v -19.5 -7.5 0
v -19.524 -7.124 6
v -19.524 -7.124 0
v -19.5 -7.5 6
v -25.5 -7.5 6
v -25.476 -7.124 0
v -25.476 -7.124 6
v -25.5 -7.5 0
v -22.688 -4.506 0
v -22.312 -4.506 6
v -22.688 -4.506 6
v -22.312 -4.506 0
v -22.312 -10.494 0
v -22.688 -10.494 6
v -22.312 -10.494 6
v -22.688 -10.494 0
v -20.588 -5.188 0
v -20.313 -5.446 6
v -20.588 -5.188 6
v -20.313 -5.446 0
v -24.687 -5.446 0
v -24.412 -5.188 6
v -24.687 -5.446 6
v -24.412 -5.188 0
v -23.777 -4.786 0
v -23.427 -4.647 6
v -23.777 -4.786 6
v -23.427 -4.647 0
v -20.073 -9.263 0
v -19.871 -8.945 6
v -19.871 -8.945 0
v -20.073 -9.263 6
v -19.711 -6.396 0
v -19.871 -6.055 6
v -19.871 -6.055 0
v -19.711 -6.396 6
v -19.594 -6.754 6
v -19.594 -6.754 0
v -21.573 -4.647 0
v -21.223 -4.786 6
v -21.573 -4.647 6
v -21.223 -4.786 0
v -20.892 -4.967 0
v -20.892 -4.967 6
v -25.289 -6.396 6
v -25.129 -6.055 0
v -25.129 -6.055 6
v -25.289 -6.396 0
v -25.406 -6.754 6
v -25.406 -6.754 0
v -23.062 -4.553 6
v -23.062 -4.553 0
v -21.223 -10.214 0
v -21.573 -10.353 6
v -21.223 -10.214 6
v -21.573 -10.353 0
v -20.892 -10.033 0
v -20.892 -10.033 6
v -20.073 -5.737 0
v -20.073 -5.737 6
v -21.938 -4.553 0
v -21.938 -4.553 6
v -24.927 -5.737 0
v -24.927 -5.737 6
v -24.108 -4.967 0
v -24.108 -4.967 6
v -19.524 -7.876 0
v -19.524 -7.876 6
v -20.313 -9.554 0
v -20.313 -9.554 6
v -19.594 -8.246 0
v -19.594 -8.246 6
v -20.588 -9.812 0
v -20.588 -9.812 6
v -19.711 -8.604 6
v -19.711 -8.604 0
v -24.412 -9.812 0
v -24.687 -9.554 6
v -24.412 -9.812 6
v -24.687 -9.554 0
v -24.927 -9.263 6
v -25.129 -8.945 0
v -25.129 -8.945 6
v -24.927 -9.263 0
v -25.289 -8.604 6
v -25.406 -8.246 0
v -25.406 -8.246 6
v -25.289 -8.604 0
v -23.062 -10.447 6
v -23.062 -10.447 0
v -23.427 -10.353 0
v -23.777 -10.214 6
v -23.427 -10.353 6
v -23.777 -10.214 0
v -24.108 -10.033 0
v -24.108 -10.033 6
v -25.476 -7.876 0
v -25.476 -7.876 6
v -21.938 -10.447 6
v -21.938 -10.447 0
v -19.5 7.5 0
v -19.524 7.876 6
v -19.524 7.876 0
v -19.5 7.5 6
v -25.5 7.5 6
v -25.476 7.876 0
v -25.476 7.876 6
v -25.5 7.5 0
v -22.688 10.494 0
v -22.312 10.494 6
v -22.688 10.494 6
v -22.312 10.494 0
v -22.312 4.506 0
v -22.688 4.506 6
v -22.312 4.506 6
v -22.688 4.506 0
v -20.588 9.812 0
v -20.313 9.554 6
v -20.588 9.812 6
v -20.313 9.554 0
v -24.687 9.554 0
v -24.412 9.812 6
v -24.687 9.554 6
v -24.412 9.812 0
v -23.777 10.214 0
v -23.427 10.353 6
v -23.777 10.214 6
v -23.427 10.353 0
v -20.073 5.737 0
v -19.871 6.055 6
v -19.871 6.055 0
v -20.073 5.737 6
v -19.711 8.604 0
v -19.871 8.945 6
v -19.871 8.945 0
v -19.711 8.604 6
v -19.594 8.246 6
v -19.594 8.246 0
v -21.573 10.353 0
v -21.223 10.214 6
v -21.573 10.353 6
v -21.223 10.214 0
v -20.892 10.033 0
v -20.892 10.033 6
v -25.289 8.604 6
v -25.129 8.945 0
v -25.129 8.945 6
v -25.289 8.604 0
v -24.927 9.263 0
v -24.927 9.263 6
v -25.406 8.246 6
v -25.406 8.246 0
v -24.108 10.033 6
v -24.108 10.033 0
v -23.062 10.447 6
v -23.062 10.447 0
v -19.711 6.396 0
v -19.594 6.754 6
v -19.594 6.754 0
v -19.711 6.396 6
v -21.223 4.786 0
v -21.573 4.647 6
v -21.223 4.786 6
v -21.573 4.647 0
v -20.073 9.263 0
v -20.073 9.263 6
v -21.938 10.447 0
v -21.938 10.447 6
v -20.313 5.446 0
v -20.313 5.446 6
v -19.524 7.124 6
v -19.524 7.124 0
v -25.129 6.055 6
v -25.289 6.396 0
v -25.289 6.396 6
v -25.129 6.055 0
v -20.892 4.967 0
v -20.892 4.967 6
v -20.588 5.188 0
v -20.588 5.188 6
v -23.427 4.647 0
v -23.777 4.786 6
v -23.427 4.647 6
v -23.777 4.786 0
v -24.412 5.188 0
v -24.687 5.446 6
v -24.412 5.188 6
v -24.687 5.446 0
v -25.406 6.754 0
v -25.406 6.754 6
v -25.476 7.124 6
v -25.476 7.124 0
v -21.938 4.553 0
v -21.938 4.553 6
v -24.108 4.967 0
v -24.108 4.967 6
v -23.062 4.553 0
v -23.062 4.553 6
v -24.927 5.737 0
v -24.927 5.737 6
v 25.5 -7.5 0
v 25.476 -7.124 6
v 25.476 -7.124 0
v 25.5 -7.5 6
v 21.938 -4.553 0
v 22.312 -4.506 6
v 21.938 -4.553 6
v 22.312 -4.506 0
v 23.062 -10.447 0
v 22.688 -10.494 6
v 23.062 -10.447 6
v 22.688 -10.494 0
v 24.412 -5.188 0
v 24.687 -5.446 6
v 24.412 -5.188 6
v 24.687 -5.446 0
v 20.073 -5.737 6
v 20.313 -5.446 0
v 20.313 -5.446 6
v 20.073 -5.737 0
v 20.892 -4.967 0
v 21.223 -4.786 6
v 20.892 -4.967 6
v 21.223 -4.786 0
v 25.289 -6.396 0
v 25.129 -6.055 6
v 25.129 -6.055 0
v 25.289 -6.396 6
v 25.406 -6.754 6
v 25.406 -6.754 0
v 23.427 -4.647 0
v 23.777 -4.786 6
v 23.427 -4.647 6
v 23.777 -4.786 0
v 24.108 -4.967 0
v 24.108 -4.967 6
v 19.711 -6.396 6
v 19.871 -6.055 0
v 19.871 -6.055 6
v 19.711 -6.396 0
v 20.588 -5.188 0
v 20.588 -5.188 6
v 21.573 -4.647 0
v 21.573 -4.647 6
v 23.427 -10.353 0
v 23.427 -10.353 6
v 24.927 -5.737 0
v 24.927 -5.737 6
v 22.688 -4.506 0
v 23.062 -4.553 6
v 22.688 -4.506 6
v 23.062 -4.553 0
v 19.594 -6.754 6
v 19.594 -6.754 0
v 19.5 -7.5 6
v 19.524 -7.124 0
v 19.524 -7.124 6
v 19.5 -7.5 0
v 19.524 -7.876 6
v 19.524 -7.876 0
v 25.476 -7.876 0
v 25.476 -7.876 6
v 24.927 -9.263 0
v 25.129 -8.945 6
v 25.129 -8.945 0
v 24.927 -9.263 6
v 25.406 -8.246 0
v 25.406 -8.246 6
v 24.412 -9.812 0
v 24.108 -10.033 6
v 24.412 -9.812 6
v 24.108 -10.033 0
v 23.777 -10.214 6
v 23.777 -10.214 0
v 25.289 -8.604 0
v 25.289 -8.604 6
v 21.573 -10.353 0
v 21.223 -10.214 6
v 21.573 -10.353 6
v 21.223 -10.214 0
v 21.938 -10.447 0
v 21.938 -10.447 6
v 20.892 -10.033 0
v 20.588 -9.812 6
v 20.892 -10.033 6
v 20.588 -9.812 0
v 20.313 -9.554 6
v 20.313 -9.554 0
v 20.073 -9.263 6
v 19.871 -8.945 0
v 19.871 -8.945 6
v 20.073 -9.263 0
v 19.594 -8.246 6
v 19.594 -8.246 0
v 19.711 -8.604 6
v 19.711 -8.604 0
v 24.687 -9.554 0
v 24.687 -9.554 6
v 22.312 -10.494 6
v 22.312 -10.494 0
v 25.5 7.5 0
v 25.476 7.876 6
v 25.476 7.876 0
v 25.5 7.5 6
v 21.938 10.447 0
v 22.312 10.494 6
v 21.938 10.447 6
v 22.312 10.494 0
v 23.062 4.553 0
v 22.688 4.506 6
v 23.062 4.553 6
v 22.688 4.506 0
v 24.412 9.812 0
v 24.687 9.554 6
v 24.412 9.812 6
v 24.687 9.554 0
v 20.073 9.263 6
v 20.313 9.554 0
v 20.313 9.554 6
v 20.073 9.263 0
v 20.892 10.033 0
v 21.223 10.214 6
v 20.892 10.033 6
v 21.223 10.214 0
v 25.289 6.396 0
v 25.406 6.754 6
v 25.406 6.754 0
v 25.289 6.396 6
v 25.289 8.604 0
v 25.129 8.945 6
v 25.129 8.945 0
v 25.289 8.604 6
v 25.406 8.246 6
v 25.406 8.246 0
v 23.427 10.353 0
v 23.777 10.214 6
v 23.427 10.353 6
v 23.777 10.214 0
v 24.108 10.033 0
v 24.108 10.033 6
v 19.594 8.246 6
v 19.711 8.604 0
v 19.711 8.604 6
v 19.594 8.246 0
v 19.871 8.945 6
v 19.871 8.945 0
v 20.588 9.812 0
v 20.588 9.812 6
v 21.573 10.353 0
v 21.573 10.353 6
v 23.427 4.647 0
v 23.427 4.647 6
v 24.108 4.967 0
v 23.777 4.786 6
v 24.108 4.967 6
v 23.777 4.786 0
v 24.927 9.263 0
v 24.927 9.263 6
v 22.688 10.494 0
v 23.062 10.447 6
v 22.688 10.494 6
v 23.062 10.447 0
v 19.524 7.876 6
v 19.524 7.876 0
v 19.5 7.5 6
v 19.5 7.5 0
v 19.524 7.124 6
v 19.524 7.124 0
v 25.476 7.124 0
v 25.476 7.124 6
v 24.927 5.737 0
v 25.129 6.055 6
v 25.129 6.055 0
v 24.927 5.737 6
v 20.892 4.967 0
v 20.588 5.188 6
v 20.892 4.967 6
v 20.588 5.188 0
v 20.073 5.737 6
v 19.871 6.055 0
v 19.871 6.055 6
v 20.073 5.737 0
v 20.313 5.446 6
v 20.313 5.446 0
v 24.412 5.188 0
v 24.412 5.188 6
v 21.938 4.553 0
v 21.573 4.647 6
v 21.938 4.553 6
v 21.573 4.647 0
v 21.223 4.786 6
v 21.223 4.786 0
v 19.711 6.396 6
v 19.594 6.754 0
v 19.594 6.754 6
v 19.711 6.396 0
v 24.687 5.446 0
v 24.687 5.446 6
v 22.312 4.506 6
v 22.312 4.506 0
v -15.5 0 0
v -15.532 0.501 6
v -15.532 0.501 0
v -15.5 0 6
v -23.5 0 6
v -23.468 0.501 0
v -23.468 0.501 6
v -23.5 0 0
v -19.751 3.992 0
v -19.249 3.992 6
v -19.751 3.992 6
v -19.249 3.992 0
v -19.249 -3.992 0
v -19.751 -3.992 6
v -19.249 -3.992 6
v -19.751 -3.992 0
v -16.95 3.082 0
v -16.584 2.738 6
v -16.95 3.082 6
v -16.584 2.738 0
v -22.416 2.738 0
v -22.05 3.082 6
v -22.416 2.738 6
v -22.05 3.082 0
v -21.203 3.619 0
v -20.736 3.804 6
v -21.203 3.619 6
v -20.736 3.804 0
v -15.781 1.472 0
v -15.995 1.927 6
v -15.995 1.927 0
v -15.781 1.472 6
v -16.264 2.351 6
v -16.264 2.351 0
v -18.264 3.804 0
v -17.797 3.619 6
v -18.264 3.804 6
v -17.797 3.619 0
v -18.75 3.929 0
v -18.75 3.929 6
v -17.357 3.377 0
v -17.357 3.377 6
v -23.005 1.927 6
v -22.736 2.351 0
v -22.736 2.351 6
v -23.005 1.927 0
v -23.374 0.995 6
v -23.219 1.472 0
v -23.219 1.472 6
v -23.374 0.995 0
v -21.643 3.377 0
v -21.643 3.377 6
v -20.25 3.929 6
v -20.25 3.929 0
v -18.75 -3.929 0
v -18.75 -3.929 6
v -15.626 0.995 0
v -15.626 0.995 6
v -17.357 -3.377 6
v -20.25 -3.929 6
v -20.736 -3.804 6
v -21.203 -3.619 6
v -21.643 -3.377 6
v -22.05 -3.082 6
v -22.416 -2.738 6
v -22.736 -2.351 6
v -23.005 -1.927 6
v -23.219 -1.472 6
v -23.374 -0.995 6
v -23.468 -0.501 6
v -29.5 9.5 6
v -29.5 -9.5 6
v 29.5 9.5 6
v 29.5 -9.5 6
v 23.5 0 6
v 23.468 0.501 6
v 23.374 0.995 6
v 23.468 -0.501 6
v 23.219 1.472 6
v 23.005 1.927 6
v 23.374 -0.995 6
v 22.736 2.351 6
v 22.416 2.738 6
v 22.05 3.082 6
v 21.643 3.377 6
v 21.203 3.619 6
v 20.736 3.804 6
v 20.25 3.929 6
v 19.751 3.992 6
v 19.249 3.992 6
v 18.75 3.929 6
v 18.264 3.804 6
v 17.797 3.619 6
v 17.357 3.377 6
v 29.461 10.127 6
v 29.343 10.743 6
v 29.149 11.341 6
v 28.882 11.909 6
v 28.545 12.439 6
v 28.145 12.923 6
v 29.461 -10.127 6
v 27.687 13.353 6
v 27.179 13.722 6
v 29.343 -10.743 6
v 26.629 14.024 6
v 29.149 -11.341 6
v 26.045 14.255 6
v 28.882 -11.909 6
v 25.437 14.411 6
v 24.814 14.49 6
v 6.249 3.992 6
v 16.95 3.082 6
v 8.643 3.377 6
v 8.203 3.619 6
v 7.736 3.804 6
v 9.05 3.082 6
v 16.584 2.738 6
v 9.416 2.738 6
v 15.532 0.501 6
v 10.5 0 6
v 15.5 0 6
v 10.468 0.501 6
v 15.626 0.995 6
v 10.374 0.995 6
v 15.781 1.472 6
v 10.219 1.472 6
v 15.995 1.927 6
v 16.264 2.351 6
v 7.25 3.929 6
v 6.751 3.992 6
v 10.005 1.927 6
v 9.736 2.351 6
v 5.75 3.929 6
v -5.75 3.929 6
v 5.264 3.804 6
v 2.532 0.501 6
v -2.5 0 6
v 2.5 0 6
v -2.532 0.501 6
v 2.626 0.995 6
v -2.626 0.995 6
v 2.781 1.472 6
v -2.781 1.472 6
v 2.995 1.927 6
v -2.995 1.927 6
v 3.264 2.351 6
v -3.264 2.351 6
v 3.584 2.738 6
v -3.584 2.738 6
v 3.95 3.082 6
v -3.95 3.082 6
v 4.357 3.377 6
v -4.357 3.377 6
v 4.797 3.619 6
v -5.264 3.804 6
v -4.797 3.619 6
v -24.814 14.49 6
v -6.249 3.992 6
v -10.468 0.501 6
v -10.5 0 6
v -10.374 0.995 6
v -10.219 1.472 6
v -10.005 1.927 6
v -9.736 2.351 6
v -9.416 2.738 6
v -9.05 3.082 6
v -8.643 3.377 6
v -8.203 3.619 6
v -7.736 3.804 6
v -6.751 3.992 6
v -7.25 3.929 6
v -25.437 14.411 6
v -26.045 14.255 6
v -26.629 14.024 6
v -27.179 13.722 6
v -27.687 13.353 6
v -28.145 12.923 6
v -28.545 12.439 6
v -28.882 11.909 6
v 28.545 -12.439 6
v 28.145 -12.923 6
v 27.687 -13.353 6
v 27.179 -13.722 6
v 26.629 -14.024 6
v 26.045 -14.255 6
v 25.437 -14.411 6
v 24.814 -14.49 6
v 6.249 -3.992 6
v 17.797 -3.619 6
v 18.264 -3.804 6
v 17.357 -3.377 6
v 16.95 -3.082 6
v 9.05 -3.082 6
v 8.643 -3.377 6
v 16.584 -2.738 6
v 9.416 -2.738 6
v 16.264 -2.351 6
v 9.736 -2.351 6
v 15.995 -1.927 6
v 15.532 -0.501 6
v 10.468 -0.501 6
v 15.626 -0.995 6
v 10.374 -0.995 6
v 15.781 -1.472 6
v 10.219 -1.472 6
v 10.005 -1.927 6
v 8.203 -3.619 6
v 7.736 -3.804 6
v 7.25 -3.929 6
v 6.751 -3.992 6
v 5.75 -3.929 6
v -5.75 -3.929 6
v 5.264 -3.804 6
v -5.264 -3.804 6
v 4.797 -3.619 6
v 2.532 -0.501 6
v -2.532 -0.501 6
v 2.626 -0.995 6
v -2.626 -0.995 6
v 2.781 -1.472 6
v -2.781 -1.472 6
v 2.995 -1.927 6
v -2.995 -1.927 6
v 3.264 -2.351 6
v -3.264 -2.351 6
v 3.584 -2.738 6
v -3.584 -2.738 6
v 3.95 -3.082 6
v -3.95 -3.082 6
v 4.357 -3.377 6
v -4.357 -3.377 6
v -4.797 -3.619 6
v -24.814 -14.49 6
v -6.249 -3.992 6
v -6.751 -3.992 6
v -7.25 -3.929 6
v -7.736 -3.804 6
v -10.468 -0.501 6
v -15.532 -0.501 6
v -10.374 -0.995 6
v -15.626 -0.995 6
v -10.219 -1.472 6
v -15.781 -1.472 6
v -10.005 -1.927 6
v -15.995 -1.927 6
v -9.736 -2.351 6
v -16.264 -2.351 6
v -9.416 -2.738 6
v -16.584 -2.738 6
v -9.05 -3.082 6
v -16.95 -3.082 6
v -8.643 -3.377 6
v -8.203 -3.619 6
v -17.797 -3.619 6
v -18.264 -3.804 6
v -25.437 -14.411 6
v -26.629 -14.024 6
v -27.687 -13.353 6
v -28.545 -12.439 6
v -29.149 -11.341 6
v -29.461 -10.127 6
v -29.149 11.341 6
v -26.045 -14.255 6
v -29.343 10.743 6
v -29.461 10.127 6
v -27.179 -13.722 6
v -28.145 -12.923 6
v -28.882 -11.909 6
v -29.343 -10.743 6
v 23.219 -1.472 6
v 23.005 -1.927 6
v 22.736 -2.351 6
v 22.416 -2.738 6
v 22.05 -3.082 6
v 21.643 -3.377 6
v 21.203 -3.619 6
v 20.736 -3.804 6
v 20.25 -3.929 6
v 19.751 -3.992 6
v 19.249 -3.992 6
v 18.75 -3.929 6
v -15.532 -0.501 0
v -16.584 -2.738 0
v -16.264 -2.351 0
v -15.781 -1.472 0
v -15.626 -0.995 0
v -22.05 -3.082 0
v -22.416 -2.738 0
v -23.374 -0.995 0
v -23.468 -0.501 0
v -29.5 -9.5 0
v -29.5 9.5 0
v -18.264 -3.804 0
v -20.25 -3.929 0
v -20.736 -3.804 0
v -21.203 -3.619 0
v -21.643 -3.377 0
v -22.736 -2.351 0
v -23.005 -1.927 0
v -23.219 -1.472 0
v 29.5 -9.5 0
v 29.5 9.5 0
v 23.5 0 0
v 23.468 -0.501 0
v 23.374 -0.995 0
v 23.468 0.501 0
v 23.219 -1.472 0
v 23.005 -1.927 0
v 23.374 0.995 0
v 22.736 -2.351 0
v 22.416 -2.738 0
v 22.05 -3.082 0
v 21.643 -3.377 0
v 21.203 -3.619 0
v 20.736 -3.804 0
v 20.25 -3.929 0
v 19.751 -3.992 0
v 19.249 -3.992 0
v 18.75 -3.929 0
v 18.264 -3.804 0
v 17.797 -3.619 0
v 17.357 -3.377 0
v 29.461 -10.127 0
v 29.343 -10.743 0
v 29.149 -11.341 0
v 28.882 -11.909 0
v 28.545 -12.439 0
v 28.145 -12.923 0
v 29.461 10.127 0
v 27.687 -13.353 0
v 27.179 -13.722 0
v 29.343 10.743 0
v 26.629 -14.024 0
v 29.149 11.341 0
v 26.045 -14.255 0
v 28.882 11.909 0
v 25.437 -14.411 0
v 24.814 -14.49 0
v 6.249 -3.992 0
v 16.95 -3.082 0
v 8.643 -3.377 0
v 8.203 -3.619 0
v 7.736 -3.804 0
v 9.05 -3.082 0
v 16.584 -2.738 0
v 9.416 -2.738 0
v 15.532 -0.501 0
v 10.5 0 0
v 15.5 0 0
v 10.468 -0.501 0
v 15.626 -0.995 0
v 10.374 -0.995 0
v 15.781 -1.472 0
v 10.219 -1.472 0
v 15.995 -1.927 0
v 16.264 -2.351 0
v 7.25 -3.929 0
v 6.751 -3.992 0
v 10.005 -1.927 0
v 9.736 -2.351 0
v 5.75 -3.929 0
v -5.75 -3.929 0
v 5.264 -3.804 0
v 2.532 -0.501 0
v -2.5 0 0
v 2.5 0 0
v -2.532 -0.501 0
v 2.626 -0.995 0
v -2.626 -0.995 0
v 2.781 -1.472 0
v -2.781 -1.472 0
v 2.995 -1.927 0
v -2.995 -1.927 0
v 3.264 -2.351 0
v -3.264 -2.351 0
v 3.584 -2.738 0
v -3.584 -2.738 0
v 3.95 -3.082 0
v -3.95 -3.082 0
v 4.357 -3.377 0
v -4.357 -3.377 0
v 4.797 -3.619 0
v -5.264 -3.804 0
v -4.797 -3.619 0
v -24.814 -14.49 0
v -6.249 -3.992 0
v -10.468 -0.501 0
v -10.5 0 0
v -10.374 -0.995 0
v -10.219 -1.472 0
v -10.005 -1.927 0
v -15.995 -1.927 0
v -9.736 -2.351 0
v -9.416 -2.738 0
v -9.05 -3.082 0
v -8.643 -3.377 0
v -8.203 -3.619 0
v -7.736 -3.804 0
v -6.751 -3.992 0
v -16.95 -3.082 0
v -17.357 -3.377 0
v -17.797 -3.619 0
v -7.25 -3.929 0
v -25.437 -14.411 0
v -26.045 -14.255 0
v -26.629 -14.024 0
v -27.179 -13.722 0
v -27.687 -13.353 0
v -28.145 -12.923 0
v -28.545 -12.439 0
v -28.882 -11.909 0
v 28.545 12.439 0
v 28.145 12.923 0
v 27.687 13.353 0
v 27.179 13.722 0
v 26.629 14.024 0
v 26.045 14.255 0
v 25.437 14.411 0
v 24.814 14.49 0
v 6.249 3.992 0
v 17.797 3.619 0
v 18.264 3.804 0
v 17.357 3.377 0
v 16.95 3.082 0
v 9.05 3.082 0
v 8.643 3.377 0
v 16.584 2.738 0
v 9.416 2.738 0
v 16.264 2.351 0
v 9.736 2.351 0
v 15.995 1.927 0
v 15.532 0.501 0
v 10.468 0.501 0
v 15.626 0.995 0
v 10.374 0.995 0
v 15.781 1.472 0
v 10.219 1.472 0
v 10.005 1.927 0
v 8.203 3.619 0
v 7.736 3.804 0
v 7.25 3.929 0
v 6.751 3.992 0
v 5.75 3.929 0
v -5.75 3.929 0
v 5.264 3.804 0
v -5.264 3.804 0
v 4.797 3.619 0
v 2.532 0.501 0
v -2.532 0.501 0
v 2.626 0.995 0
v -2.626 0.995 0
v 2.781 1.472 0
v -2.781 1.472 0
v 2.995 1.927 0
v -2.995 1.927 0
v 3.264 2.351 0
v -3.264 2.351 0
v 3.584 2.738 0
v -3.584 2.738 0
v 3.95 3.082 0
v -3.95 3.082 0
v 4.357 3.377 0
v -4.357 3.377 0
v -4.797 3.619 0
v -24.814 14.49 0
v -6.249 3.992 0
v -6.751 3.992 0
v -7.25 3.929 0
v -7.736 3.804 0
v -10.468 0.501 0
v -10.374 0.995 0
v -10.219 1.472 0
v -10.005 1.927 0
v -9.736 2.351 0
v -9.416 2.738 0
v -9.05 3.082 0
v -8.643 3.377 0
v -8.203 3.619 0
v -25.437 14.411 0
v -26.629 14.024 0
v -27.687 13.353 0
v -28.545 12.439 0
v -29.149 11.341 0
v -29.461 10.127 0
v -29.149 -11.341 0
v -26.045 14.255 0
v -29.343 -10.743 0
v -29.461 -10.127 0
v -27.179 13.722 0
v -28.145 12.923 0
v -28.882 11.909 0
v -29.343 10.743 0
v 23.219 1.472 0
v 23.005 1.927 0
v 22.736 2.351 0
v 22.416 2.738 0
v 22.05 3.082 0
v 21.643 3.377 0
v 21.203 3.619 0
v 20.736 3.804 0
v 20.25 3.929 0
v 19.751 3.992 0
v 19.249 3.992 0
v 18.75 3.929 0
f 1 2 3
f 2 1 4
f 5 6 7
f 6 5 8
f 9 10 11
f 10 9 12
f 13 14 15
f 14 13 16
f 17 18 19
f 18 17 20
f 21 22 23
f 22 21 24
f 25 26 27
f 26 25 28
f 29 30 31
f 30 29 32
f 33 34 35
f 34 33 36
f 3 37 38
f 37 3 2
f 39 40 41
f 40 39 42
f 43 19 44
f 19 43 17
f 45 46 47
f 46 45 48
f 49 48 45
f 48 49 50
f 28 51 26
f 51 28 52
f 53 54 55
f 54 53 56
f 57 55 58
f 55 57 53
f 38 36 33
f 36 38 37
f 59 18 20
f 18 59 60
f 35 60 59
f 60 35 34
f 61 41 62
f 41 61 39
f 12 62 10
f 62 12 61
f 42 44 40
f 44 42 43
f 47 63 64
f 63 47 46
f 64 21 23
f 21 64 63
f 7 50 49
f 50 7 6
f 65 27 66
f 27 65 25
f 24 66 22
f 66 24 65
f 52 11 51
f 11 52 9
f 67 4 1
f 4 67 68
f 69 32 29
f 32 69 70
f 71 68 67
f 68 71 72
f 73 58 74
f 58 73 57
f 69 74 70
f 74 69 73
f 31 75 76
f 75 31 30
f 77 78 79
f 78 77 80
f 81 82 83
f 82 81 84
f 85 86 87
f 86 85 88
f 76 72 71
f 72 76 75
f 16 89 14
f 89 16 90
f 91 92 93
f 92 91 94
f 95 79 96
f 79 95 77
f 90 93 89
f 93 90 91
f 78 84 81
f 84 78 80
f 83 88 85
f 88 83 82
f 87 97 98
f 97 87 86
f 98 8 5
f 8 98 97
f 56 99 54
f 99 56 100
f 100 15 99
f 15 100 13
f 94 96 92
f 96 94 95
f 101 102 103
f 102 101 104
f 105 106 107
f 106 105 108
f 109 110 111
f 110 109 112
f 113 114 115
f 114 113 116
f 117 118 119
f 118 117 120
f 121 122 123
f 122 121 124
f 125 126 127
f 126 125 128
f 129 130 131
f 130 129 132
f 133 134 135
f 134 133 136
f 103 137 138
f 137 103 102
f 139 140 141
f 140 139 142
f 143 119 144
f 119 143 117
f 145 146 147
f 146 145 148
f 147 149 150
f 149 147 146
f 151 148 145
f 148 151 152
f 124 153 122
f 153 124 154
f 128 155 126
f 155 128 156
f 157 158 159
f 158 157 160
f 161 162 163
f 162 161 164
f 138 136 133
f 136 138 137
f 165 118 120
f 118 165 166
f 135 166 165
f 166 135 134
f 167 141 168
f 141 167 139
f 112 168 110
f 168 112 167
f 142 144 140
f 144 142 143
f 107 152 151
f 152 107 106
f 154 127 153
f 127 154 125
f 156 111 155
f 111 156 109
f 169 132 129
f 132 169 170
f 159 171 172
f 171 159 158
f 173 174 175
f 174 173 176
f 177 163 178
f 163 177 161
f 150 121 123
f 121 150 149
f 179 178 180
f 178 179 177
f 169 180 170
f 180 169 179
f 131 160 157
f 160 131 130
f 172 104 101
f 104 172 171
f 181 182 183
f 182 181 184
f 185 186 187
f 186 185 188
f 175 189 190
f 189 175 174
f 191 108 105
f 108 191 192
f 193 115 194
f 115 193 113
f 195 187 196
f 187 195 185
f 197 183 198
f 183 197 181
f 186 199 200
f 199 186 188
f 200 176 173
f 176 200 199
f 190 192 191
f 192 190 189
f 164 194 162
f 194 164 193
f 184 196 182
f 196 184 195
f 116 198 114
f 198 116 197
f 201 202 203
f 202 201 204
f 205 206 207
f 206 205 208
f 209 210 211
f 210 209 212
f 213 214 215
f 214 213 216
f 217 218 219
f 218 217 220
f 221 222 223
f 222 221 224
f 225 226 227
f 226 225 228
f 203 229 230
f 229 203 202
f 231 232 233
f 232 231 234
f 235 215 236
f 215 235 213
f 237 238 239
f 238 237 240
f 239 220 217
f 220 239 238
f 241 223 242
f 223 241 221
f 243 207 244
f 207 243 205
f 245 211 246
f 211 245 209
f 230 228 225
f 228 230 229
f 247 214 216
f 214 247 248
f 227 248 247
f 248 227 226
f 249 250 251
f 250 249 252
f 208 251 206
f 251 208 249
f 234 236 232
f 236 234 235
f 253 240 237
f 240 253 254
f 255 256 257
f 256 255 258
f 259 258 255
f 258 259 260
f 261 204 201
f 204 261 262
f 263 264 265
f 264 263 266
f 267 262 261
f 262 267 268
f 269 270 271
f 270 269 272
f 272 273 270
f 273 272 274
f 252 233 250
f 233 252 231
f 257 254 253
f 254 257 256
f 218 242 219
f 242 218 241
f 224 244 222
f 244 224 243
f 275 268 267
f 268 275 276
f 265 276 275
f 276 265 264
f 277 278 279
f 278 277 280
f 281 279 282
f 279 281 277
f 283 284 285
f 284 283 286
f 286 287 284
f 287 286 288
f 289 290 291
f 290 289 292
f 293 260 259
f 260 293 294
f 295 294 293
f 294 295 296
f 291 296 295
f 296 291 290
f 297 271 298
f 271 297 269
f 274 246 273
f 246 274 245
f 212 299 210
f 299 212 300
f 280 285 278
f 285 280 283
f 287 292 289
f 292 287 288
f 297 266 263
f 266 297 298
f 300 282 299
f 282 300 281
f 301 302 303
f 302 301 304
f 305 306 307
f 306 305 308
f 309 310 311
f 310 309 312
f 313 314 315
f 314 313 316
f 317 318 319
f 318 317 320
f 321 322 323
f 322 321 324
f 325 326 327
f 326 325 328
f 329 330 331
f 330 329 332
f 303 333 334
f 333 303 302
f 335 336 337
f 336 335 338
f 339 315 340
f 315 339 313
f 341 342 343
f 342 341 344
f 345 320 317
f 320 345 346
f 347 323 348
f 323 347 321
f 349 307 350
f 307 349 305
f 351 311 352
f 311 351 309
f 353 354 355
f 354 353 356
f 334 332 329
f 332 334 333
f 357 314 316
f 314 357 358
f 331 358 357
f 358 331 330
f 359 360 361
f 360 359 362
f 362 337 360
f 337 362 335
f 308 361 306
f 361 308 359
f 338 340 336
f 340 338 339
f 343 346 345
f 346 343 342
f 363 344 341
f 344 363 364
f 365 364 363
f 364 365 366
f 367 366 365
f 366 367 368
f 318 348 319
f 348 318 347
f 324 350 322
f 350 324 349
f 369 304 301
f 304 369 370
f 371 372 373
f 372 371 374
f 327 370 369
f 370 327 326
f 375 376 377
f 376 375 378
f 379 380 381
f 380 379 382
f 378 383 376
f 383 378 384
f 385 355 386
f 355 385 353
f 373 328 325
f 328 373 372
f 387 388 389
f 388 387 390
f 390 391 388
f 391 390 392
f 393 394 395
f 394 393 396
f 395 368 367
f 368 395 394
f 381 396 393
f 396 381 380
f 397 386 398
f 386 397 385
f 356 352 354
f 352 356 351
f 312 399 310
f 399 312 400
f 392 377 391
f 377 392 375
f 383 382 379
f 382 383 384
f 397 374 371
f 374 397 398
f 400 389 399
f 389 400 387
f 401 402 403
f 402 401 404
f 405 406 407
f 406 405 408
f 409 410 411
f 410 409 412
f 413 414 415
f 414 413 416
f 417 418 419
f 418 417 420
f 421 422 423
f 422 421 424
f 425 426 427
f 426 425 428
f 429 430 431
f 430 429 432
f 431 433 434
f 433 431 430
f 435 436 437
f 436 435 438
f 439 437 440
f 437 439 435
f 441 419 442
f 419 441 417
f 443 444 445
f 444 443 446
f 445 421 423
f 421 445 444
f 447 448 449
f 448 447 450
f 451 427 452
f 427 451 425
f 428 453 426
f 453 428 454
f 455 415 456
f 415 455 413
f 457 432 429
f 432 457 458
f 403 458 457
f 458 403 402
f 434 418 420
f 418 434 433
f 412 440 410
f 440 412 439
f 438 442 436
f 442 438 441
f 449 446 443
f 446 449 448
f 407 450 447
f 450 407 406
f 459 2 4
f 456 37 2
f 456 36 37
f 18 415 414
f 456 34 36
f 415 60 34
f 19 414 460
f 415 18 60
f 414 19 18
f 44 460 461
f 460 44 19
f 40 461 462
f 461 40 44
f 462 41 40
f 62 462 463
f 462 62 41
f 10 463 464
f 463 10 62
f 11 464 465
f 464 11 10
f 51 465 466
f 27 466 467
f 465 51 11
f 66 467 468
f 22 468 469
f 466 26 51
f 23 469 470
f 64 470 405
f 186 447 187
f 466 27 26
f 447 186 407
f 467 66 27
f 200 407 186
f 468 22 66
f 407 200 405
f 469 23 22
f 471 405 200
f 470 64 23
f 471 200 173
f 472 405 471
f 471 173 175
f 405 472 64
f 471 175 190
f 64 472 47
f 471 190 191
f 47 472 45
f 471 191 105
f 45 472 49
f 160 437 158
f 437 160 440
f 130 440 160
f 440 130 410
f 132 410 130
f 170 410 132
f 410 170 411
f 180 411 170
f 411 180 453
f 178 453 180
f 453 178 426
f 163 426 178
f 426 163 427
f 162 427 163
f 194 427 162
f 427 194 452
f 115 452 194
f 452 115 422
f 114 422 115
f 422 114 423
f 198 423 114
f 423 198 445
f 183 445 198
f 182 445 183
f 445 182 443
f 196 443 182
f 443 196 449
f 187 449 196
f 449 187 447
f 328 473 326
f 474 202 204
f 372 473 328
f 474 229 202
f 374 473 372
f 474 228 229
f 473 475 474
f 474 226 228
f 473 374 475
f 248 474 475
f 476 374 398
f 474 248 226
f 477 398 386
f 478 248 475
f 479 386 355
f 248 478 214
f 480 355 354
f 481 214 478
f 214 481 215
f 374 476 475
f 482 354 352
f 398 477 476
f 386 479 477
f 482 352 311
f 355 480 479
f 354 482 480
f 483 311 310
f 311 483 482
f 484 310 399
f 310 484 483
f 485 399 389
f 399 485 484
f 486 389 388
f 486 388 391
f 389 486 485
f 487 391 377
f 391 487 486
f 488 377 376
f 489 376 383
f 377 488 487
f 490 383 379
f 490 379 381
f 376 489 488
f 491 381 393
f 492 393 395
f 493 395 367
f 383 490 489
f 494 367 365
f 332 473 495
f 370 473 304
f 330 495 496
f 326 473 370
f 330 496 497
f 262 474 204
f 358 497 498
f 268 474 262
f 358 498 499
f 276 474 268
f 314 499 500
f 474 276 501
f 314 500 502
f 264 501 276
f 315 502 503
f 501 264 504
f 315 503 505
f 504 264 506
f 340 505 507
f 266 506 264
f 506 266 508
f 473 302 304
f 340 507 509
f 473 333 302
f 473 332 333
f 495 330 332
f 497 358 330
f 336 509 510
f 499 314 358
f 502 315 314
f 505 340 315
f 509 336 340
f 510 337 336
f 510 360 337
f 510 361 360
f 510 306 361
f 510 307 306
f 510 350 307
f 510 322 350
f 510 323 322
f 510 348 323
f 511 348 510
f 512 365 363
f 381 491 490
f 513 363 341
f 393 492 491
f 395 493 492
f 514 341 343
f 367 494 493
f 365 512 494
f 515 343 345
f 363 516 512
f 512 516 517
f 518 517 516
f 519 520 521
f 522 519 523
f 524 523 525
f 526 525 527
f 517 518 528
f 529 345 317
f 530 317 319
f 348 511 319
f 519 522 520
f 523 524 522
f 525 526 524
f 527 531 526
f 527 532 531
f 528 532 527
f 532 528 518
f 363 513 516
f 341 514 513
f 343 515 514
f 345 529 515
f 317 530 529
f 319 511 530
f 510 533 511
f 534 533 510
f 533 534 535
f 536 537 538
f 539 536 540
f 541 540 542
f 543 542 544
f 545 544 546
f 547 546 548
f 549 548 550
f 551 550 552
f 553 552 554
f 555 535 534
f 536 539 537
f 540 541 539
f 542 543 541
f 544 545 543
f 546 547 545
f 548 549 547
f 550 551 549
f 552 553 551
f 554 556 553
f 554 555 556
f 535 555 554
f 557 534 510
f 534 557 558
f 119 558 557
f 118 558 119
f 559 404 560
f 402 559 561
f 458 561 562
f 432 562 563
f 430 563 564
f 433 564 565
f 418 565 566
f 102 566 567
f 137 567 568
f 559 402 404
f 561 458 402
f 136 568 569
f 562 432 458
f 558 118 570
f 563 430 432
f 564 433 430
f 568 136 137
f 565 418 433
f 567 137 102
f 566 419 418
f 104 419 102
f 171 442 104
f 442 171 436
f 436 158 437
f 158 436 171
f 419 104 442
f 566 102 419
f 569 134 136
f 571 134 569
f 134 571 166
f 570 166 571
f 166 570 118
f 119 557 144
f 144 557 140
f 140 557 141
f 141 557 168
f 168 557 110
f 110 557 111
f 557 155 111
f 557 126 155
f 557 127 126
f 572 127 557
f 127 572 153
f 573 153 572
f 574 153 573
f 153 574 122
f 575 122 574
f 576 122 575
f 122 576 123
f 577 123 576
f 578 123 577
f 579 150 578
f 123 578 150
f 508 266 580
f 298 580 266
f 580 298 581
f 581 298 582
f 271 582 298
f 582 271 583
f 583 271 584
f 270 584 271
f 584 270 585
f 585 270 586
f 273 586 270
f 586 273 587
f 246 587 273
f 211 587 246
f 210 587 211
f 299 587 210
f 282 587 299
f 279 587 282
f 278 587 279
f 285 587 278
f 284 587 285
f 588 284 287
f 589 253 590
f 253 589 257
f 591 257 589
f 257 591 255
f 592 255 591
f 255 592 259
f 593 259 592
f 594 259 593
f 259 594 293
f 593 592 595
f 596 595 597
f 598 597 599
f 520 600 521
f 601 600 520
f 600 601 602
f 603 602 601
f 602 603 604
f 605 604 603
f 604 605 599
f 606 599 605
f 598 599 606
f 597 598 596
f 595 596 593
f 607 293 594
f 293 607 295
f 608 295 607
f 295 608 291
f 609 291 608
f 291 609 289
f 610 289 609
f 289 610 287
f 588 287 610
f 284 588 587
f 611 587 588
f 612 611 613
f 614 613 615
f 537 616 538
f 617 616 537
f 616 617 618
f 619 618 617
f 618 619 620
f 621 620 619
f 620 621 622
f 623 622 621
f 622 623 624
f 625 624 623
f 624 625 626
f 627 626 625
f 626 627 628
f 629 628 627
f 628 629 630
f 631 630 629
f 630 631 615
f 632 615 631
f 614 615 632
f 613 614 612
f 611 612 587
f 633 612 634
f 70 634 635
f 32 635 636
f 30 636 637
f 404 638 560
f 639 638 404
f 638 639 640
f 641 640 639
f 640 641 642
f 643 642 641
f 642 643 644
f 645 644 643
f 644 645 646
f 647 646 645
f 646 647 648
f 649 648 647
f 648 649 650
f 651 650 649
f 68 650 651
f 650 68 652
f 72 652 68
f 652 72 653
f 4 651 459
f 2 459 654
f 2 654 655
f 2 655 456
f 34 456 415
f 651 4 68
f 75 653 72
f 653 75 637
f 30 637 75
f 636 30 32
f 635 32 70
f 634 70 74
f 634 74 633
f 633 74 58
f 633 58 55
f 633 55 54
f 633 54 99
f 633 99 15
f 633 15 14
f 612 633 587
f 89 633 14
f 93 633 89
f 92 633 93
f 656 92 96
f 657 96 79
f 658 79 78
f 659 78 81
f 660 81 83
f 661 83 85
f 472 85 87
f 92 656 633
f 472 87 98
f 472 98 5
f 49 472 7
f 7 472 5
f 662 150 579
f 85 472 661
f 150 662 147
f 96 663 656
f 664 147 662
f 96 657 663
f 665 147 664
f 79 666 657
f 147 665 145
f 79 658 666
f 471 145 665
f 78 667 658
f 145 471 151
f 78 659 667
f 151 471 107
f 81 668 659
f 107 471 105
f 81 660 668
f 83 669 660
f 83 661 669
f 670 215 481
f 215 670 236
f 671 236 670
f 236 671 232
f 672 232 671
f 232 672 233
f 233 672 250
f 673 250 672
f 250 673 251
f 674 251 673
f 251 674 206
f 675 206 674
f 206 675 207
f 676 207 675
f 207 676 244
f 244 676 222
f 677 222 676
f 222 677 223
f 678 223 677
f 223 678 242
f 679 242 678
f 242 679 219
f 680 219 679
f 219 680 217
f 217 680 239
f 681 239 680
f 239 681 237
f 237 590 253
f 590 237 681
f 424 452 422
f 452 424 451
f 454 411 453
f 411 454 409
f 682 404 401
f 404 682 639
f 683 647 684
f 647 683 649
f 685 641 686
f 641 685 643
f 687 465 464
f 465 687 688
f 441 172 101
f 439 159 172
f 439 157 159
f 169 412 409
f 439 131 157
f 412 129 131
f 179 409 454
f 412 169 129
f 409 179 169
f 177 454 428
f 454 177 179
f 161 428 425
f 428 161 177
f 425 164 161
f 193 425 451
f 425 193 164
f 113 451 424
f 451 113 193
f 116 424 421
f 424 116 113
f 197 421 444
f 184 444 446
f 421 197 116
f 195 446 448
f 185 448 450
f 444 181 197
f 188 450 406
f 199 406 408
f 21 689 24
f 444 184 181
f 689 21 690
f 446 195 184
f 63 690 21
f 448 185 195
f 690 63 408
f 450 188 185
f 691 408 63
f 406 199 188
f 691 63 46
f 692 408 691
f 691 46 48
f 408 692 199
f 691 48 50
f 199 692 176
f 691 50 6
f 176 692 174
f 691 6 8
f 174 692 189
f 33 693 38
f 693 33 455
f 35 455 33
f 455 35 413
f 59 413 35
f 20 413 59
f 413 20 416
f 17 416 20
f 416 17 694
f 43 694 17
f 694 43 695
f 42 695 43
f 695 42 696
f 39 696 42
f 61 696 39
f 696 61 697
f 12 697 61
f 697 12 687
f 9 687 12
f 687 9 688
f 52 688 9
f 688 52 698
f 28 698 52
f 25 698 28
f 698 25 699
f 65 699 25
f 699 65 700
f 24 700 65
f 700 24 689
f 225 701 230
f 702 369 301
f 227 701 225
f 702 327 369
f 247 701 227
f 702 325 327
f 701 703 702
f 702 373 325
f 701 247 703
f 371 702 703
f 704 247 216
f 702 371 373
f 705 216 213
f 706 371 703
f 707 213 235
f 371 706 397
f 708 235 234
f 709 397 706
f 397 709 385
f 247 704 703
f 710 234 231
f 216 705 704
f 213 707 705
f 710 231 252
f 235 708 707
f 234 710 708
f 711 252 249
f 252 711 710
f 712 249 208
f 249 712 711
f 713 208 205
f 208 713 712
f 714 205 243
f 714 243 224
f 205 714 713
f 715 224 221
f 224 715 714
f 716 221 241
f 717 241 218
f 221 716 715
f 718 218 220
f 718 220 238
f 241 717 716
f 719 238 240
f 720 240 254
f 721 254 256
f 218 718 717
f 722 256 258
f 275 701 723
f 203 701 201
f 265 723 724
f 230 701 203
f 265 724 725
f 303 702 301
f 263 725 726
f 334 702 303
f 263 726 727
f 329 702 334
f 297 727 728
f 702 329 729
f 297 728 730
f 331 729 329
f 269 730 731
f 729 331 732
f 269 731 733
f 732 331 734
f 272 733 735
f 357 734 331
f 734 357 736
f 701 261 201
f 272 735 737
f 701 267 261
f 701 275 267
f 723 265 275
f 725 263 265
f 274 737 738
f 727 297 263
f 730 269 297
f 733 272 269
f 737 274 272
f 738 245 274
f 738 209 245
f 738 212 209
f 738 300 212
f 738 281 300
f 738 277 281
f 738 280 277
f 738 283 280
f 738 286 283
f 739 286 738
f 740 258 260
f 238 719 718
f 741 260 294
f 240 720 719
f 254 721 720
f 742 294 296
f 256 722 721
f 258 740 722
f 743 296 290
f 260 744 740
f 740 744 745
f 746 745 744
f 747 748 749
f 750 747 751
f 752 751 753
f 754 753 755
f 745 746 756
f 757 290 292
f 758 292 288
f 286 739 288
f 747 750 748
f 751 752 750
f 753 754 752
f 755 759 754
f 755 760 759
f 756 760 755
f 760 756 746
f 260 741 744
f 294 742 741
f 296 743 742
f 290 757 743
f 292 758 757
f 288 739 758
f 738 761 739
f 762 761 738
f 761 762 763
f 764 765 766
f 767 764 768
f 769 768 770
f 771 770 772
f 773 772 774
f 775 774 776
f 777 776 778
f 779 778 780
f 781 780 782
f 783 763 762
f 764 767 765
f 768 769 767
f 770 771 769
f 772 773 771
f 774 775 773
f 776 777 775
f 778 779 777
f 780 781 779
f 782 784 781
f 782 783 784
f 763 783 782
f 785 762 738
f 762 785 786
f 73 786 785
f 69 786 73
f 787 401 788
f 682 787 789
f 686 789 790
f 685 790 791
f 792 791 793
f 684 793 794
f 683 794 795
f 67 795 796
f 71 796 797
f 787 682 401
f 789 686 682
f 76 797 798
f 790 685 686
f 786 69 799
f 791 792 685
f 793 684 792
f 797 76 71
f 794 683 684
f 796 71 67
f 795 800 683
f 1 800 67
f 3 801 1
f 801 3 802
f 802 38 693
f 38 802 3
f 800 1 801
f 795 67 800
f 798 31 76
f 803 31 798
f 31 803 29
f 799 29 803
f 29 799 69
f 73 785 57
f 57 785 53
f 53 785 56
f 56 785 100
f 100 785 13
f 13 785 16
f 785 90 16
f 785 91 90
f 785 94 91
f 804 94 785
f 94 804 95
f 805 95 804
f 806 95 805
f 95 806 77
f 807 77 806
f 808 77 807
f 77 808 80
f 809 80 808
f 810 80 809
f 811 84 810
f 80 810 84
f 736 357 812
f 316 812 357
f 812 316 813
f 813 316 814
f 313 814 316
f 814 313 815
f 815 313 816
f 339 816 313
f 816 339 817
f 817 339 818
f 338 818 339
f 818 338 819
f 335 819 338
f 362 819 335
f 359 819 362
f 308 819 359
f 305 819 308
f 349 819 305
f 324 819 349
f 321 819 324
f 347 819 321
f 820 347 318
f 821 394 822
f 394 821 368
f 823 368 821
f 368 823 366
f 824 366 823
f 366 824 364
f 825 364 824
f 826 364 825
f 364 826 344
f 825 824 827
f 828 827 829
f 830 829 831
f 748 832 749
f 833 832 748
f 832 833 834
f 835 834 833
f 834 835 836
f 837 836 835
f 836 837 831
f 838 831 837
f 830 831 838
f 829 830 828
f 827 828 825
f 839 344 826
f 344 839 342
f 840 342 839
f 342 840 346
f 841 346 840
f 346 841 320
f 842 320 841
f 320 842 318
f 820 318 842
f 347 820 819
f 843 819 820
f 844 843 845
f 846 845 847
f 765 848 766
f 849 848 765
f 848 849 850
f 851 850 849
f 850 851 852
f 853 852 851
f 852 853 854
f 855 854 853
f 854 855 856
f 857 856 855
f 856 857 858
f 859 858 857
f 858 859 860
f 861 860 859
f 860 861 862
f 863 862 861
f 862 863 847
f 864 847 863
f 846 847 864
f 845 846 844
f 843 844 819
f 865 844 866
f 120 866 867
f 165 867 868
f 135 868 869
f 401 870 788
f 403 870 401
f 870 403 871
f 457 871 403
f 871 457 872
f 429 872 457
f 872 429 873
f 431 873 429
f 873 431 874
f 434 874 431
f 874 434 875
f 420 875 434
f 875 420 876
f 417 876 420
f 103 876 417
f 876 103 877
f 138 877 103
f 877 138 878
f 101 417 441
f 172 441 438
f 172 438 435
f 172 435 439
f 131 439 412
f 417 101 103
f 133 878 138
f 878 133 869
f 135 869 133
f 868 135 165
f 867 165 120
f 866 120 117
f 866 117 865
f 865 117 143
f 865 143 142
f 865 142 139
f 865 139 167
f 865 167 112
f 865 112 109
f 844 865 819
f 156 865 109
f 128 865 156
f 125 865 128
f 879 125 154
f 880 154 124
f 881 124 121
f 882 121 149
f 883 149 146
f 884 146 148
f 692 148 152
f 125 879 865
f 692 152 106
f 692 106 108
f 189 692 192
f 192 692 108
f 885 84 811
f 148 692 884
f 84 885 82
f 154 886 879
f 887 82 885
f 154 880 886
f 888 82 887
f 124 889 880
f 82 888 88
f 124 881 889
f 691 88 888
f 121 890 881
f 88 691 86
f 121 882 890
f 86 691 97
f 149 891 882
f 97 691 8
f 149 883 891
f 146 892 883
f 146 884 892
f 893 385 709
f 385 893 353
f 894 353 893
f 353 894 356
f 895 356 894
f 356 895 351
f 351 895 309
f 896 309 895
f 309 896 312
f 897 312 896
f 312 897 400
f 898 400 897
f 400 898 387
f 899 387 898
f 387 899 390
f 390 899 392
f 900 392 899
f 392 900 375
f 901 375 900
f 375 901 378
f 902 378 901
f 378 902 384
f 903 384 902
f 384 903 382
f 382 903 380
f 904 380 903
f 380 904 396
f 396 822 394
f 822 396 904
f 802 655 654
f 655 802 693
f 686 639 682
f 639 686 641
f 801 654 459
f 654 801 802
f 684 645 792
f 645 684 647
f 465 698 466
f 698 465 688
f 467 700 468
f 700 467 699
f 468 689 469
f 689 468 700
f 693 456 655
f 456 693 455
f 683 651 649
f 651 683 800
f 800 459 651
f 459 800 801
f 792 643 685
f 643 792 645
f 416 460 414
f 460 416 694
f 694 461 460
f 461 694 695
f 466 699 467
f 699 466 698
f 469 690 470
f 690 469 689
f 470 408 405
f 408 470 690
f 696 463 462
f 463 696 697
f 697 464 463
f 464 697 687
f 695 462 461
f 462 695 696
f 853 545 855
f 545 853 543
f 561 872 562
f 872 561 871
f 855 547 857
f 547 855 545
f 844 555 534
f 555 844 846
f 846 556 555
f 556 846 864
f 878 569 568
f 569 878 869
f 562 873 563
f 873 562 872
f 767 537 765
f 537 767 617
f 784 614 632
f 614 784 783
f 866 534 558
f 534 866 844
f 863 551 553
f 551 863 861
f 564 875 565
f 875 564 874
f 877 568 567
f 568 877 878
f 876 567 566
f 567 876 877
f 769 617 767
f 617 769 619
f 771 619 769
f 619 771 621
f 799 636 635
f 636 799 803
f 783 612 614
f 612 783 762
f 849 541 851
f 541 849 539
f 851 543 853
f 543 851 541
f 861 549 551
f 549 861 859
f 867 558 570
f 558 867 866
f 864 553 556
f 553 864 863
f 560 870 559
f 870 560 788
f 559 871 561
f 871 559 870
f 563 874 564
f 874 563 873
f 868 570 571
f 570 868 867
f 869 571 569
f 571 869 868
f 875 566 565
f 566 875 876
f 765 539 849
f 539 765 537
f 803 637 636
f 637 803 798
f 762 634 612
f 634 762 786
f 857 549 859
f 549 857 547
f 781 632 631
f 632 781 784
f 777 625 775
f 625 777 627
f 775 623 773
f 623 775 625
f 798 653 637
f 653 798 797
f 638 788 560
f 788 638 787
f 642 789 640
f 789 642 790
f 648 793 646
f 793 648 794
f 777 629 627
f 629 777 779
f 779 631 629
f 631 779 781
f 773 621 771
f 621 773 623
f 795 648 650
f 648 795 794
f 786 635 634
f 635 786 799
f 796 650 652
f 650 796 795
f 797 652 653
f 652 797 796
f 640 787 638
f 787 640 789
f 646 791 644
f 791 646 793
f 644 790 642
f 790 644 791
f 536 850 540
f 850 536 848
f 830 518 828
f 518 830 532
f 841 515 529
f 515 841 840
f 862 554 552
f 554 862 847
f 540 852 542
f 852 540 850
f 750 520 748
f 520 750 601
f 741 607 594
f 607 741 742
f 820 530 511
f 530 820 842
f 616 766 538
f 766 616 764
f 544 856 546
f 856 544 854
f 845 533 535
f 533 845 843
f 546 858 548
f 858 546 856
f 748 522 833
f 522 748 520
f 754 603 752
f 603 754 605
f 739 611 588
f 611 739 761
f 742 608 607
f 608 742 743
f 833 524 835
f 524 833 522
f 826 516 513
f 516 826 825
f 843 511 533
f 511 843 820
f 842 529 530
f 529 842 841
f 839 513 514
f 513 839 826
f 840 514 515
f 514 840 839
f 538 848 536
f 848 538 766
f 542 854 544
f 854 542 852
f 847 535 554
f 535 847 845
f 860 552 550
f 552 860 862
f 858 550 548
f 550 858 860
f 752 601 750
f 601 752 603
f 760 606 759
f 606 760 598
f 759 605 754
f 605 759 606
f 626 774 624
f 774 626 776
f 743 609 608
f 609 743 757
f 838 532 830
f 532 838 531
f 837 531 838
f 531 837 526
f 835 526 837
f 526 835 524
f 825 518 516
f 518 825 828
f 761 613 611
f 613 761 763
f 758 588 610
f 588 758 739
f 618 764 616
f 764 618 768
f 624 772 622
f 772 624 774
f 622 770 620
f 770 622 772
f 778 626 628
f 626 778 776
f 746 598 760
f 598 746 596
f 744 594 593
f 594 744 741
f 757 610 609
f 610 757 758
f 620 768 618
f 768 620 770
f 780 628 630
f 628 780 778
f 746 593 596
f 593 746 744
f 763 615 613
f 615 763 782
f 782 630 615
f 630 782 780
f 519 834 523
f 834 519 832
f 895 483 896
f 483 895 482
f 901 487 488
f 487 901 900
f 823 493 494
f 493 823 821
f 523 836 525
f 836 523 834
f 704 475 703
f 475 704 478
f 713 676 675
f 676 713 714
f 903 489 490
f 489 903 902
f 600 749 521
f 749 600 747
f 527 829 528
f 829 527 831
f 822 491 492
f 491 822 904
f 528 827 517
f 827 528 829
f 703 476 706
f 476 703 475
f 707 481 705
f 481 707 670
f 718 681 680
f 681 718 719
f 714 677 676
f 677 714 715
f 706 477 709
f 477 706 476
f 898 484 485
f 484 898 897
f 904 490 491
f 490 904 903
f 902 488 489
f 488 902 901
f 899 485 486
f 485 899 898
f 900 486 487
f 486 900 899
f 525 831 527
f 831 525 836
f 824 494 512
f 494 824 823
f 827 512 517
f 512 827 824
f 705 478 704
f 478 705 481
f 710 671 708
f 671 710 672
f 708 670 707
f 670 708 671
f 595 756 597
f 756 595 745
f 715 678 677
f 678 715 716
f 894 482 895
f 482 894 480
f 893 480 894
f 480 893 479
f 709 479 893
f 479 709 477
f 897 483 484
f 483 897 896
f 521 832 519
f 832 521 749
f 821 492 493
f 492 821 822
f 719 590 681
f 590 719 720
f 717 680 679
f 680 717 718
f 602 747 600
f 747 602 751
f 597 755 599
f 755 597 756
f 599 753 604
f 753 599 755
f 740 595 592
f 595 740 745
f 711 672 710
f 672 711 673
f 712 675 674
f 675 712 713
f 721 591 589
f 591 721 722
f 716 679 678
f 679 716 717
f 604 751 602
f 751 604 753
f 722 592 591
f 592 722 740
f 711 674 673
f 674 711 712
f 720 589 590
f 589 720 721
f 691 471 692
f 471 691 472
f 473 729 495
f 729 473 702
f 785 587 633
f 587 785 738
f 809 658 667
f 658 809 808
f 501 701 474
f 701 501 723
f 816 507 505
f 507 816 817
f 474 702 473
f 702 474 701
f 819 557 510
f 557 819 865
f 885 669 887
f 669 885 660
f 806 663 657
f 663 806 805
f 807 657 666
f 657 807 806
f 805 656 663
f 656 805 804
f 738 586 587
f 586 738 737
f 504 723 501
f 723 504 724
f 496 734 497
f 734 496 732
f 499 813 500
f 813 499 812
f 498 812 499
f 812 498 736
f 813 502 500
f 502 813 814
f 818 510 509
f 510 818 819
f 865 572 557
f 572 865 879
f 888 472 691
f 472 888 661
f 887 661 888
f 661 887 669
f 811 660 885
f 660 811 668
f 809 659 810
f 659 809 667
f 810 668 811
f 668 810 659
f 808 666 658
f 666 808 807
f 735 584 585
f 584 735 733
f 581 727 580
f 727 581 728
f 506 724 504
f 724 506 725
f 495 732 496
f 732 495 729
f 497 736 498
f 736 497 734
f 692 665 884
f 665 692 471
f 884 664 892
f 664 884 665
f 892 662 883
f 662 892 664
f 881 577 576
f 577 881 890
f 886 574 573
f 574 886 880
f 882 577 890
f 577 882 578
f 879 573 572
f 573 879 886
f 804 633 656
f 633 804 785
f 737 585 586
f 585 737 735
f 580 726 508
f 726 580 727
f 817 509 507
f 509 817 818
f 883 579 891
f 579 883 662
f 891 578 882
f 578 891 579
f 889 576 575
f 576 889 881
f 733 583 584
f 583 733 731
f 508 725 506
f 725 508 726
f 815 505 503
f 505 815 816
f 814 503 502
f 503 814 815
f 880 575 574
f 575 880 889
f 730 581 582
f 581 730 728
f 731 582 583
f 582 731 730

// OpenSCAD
$fn = 50;


difference() {
	union() {
		hull() {
			translate(v = [-24.5000000000, 9.5000000000, 0]) {
				cylinder(h = 6, r = 5);
			}
			translate(v = [24.5000000000, 9.5000000000, 0]) {
				cylinder(h = 6, r = 5);
			}
			translate(v = [-24.5000000000, -9.5000000000, 0]) {
				cylinder(h = 6, r = 5);
			}
			translate(v = [24.5000000000, -9.5000000000, 0]) {
				cylinder(h = 6, r = 5);
			}
		}
	}
	union() {
		#translate(v = [-22.5000000000, -7.5000000000, -100.0000000000]) {
			cylinder(h = 200, r = 3.0000000000);
		}
		#translate(v = [-22.5000000000, 7.5000000000, -100.0000000000]) {
			cylinder(h = 200, r = 3.0000000000);
		}
		#translate(v = [22.5000000000, -7.5000000000, -100.0000000000]) {
			cylinder(h = 200, r = 3.0000000000);
		}
		#translate(v = [22.5000000000, 7.5000000000, -100.0000000000]) {
			cylinder(h = 200, r = 3.0000000000);
		}
		#translate(v = [-19.5000000000, 0, 0]) {
			cylinder(h = 6, r = 4.0000000000);
		}
		#translate(v = [-6.5000000000, 0, 0]) {
			cylinder(h = 6, r = 4.0000000000);
		}
		#translate(v = [6.5000000000, 0, 0]) {
			cylinder(h = 6, r = 4.0000000000);
		}
		#translate(v = [19.5000000000, 0, 0]) {
			cylinder(h = 6, r = 4.0000000000);
		}
	}
}
